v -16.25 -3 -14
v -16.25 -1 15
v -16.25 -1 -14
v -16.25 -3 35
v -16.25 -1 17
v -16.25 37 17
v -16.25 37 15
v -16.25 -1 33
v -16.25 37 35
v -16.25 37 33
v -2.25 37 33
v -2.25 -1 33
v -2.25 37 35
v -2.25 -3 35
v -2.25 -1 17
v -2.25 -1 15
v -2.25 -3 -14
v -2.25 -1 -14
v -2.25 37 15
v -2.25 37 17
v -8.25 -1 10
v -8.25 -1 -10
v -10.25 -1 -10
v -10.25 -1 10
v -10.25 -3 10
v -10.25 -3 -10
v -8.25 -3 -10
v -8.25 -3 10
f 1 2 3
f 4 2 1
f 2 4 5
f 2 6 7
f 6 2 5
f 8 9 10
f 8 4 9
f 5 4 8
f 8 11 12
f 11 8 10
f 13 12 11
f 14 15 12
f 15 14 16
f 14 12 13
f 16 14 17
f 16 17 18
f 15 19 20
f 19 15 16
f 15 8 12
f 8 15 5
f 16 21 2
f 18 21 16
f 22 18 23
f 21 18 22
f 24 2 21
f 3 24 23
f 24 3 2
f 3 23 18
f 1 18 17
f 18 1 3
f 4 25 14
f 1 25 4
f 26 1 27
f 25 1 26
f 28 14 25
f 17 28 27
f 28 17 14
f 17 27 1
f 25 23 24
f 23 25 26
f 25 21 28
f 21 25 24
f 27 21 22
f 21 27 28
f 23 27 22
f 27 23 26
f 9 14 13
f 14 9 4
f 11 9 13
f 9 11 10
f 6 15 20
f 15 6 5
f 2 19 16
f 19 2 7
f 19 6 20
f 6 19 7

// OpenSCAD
difference()
{
translate([-16.25,-3,-14])
{
    cube([14,2,47]);
}

translate([-10.25,-3,-10])
{
    cube([2,2,20]);
}


}

translate([-16.25,-3,33])
{
    cube([14,40,2]);
}

translate([-16.25,-3,15])
{
    cube([14,40,2]);
}
